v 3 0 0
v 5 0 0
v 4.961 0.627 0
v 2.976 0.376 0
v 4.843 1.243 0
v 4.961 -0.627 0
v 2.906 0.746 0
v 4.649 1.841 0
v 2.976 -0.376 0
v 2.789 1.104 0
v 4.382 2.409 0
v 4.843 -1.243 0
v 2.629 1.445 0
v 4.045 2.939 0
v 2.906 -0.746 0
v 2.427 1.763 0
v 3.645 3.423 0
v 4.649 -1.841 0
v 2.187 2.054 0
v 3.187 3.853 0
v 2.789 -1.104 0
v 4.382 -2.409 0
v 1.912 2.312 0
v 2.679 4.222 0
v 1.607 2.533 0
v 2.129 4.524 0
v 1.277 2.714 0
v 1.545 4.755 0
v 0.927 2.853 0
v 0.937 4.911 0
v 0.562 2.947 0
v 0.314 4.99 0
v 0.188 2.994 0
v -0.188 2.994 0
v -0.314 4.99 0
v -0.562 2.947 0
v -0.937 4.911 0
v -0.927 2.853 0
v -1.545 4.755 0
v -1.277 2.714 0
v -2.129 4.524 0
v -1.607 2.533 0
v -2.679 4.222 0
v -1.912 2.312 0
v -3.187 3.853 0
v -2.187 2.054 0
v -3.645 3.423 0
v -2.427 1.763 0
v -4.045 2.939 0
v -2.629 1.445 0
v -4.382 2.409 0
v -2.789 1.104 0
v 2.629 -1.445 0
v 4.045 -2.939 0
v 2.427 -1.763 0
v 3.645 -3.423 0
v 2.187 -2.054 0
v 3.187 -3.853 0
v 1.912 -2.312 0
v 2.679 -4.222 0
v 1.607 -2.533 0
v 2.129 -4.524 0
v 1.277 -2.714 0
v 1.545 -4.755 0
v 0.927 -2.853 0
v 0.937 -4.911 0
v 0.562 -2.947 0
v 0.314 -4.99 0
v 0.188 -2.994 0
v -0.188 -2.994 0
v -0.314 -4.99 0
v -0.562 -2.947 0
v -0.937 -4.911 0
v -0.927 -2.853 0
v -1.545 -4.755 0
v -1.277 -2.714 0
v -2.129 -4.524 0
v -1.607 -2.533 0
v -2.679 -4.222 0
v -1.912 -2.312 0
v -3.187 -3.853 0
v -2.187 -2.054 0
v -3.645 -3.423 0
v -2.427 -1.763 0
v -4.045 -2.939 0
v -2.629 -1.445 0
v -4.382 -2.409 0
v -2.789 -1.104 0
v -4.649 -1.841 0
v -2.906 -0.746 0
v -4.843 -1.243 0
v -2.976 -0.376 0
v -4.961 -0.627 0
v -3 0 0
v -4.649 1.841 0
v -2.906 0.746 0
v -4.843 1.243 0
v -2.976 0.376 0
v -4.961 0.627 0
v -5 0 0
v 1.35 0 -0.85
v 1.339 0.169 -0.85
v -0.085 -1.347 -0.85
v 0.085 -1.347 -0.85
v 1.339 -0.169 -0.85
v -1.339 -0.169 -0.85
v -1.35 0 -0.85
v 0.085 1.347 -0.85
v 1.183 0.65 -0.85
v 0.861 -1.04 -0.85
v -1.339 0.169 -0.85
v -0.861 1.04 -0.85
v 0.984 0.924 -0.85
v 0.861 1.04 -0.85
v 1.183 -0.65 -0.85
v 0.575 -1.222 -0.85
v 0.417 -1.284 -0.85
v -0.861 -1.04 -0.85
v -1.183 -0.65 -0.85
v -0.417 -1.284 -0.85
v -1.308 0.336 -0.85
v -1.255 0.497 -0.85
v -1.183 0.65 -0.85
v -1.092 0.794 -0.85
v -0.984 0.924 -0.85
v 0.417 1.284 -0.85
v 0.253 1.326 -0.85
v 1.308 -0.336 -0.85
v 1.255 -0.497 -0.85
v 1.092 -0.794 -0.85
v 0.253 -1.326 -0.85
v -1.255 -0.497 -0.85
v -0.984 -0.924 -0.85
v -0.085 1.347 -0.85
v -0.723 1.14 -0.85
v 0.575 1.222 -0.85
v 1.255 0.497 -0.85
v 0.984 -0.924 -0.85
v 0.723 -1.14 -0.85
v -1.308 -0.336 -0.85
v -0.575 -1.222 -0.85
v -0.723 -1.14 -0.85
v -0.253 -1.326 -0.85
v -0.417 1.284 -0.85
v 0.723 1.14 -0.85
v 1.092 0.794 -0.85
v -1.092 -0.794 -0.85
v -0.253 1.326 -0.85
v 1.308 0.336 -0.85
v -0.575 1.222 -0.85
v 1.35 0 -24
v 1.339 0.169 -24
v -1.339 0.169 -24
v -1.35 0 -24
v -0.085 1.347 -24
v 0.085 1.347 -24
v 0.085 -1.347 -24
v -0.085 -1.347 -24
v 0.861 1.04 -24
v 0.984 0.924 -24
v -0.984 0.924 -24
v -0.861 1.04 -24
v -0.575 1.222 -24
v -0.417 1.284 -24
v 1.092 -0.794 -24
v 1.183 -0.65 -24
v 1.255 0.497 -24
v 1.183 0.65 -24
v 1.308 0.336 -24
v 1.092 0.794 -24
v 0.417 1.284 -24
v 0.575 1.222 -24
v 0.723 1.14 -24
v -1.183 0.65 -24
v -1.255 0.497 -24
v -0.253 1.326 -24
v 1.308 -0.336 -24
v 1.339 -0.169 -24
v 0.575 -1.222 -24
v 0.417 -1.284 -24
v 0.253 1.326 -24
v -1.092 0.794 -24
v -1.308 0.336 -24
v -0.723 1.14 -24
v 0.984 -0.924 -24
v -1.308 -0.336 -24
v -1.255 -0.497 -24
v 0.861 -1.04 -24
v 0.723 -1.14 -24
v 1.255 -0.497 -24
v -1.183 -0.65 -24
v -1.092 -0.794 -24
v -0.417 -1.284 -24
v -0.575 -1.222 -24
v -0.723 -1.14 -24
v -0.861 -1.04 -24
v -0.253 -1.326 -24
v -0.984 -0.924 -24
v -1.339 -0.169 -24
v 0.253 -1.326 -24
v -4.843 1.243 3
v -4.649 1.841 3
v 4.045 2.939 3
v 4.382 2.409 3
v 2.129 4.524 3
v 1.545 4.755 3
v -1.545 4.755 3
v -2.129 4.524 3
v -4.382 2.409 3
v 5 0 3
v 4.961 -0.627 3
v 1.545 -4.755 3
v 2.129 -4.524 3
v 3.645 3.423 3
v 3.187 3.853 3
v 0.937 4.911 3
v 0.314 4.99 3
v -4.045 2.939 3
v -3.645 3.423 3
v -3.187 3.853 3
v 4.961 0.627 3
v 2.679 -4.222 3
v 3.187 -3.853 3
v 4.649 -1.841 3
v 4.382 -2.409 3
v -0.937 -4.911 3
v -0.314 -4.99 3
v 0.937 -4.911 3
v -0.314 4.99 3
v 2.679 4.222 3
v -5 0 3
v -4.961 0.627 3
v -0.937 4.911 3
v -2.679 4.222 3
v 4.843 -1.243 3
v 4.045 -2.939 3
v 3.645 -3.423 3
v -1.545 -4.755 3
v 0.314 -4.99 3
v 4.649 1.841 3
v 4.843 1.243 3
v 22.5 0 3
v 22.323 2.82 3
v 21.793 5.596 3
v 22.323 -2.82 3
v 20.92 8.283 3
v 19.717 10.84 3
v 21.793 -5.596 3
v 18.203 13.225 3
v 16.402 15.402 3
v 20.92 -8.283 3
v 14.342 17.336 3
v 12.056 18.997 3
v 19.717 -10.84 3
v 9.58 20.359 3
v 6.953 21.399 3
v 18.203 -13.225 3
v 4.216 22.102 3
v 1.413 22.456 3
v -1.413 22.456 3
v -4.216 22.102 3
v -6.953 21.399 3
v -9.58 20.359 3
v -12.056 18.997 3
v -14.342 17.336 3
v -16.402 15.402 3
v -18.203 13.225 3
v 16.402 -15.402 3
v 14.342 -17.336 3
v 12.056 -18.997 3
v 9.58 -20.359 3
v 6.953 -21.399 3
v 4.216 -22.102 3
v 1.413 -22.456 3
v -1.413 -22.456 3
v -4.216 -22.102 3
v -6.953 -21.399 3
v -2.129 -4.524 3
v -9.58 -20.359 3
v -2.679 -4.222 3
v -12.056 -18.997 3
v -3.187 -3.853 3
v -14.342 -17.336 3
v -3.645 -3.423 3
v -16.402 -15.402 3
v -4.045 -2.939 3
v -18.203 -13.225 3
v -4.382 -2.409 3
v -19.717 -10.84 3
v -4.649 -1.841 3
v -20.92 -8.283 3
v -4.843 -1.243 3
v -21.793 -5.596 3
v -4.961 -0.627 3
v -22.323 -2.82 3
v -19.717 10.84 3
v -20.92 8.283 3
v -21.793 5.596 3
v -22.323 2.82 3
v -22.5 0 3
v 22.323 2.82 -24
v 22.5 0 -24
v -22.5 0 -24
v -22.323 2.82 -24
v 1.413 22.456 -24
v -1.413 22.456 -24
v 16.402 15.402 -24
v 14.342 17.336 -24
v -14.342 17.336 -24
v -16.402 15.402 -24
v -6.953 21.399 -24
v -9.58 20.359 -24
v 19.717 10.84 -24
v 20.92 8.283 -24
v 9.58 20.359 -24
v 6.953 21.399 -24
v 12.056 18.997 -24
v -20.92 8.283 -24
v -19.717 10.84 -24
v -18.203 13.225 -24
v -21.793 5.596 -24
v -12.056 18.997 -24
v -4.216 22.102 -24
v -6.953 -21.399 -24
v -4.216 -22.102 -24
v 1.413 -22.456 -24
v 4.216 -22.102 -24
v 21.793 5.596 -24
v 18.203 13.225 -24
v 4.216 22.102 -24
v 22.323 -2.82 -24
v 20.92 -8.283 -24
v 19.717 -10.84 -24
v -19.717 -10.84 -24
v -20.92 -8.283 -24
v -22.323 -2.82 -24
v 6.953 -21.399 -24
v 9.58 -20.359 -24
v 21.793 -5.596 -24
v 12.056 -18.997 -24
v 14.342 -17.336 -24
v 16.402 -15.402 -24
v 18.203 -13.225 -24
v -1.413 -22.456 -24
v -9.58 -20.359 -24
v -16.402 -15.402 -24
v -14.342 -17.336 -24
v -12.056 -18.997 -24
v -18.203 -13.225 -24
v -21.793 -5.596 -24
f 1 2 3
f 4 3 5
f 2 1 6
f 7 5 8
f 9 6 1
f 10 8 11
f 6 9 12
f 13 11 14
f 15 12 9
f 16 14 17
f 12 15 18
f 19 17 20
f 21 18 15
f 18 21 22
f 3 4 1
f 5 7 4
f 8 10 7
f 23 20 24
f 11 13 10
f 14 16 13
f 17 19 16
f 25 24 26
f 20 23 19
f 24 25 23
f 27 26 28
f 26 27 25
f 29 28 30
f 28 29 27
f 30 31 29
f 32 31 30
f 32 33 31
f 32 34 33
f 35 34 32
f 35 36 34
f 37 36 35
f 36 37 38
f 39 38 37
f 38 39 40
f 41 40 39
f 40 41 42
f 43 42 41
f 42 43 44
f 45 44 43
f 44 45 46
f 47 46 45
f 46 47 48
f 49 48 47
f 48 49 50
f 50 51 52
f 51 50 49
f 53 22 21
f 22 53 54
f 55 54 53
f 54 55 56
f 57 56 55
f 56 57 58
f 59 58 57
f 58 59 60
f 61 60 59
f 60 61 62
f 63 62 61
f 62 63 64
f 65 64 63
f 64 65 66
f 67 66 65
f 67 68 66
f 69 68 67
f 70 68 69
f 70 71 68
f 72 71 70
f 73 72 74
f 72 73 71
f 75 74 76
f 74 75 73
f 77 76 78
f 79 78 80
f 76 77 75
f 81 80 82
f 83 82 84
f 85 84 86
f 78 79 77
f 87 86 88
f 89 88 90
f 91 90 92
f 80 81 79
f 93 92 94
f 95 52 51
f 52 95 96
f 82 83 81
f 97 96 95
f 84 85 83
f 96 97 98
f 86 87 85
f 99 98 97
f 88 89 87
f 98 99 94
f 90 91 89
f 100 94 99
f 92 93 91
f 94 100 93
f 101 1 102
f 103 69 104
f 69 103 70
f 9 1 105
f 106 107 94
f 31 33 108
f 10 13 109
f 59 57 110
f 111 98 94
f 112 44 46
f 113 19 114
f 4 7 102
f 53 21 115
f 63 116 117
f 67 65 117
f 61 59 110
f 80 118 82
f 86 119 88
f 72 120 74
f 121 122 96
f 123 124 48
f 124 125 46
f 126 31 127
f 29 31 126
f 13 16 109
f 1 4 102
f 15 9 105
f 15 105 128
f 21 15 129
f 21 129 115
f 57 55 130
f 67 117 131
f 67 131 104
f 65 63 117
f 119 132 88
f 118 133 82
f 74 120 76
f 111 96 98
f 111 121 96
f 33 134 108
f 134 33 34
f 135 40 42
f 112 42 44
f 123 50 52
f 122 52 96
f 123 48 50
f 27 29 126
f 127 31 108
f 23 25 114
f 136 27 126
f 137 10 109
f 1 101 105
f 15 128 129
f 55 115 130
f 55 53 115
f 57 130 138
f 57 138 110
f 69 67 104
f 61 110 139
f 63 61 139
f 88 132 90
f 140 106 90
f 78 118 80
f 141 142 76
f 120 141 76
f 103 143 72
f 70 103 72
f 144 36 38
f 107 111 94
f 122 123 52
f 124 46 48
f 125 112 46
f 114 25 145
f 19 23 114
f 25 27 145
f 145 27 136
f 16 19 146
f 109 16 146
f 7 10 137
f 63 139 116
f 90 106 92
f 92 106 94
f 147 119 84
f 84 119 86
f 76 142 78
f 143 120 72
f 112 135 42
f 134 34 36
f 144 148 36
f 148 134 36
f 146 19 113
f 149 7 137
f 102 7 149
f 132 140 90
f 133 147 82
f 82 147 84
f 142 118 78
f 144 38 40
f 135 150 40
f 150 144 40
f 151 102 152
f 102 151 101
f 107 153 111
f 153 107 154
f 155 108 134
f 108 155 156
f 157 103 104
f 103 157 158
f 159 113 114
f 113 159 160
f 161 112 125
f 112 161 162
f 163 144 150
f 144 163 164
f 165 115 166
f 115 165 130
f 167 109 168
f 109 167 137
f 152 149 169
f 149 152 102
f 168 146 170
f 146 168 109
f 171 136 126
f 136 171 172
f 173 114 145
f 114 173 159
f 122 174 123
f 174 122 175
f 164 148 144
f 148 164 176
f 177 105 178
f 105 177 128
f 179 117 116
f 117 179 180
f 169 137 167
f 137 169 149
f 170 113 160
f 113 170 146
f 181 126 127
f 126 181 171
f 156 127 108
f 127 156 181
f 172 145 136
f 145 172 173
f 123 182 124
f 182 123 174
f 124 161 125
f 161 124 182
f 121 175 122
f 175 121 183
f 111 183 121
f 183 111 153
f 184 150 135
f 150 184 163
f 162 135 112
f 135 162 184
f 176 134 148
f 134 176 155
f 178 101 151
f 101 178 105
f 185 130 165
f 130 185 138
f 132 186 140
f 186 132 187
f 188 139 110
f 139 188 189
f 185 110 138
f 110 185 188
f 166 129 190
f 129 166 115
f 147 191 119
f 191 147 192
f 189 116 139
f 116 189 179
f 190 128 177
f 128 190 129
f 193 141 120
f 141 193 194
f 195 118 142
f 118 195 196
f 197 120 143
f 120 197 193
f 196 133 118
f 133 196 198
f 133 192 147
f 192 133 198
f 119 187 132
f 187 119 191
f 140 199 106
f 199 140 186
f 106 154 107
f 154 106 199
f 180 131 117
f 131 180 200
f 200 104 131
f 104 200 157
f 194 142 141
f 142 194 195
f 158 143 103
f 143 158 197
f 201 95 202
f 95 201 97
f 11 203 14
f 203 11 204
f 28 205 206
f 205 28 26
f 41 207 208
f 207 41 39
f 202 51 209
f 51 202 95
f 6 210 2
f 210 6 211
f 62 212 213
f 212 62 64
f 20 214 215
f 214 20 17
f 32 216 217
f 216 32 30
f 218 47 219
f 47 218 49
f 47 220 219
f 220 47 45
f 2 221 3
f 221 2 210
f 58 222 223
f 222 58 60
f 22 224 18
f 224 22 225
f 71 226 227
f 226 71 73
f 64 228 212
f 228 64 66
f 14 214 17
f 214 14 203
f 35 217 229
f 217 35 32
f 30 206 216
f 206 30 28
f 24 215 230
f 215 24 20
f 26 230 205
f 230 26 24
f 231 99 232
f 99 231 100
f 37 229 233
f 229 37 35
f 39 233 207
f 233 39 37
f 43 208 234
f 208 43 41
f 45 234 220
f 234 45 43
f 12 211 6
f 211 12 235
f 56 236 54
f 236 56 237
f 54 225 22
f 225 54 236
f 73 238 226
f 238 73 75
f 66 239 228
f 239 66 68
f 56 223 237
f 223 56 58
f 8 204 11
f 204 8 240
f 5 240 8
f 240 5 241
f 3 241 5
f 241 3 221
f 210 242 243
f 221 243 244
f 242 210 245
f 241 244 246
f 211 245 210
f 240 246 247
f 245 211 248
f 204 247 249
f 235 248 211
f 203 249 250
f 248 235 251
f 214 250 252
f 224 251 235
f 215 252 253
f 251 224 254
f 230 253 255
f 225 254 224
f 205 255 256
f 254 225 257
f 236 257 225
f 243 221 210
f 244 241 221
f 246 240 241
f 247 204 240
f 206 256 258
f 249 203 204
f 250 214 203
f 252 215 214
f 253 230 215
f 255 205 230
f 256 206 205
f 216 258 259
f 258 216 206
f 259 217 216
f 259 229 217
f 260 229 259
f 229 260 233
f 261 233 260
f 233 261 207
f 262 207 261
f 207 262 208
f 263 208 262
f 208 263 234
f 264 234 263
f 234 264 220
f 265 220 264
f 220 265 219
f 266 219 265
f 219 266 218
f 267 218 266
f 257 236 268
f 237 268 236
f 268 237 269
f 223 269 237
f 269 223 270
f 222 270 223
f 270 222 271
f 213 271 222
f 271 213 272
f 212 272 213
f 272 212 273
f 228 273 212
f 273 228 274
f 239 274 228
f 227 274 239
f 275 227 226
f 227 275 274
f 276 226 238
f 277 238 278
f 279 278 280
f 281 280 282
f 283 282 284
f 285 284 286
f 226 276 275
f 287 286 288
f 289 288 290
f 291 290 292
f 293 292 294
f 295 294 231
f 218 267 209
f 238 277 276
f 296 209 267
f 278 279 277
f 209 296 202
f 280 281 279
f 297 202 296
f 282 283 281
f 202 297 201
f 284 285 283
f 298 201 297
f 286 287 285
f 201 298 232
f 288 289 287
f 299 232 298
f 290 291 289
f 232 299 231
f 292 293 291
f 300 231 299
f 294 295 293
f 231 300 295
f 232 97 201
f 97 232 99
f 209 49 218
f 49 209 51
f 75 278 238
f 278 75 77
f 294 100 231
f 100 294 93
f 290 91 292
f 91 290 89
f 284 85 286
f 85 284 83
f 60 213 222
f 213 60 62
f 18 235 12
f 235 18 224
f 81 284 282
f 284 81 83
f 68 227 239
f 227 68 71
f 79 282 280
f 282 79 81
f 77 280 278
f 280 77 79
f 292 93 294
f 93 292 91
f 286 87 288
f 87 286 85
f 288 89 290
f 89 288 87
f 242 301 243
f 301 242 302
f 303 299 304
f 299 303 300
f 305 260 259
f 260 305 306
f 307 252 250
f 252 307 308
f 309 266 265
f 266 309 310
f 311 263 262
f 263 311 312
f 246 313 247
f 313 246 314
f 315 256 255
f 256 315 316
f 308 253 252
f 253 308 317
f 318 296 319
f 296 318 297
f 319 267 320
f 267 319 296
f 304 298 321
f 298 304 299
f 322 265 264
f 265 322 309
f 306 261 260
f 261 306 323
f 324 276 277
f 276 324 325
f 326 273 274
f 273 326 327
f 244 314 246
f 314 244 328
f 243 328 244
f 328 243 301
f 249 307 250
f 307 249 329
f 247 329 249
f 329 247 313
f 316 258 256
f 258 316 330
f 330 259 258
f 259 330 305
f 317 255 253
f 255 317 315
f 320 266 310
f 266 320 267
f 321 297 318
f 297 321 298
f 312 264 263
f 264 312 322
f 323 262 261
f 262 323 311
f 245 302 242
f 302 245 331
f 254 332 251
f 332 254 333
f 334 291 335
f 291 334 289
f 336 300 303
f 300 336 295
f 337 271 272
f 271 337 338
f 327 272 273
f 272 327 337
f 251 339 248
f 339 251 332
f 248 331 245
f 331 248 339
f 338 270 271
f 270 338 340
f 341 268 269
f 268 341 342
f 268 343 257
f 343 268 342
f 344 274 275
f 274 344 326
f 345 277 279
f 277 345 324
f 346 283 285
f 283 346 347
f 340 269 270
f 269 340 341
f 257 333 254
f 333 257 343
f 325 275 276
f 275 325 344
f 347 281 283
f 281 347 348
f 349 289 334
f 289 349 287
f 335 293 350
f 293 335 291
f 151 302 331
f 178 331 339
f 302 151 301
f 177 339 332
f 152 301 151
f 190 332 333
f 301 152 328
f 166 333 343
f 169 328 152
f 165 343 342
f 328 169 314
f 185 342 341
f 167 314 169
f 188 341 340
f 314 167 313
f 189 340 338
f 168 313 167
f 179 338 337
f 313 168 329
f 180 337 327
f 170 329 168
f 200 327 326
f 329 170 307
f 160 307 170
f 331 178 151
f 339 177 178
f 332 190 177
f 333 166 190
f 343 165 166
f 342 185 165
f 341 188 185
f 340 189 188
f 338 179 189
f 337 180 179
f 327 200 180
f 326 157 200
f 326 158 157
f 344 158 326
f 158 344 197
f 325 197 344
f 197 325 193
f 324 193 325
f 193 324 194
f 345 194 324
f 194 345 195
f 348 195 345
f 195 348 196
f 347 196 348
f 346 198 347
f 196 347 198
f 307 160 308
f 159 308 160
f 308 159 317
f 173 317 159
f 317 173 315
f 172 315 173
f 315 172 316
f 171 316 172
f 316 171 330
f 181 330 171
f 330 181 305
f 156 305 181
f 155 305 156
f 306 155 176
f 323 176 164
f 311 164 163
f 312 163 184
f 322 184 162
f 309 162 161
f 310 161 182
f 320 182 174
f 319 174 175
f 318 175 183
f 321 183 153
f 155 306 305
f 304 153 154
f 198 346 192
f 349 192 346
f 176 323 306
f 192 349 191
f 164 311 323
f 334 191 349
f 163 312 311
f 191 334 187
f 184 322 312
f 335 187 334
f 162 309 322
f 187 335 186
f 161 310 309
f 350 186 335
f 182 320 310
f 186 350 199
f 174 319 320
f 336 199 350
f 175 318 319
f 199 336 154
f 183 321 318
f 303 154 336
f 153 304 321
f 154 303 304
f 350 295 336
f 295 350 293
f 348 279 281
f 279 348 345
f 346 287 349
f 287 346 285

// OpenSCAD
$fn = 50;


difference() {
	union() {
		translate(v = [0, 0, -24.0000000000]) {
			cylinder(h = 27, r = 22.5000000000);
		}
	}
	union() {
		translate(v = [0, 0, 0]) {
			rotate(a = [0, 0, 0]) {
				difference() {
					union() {
						translate(v = [0, 0, -27.0000000000]) {
							cylinder(h = 27, r = 1.0000000000);
						}
						translate(v = [0, 0, -0.8500000000]) {
							cylinder(h = 0.8500000000, r1 = 1.3500000000, r2 = 3.0000000000);
						}
						translate(v = [0, 0, -27.0000000000]) {
							cylinder(h = 27, r = 1.3500000000);
						}
						translate(v = [0, 0, -27.0000000000]) {
							cylinder(h = 27, r = 1.0000000000);
						}
					}
					union();
				}
			}
		}
		#cylinder(h = 3, r = 5.0000000000);
	}
}
